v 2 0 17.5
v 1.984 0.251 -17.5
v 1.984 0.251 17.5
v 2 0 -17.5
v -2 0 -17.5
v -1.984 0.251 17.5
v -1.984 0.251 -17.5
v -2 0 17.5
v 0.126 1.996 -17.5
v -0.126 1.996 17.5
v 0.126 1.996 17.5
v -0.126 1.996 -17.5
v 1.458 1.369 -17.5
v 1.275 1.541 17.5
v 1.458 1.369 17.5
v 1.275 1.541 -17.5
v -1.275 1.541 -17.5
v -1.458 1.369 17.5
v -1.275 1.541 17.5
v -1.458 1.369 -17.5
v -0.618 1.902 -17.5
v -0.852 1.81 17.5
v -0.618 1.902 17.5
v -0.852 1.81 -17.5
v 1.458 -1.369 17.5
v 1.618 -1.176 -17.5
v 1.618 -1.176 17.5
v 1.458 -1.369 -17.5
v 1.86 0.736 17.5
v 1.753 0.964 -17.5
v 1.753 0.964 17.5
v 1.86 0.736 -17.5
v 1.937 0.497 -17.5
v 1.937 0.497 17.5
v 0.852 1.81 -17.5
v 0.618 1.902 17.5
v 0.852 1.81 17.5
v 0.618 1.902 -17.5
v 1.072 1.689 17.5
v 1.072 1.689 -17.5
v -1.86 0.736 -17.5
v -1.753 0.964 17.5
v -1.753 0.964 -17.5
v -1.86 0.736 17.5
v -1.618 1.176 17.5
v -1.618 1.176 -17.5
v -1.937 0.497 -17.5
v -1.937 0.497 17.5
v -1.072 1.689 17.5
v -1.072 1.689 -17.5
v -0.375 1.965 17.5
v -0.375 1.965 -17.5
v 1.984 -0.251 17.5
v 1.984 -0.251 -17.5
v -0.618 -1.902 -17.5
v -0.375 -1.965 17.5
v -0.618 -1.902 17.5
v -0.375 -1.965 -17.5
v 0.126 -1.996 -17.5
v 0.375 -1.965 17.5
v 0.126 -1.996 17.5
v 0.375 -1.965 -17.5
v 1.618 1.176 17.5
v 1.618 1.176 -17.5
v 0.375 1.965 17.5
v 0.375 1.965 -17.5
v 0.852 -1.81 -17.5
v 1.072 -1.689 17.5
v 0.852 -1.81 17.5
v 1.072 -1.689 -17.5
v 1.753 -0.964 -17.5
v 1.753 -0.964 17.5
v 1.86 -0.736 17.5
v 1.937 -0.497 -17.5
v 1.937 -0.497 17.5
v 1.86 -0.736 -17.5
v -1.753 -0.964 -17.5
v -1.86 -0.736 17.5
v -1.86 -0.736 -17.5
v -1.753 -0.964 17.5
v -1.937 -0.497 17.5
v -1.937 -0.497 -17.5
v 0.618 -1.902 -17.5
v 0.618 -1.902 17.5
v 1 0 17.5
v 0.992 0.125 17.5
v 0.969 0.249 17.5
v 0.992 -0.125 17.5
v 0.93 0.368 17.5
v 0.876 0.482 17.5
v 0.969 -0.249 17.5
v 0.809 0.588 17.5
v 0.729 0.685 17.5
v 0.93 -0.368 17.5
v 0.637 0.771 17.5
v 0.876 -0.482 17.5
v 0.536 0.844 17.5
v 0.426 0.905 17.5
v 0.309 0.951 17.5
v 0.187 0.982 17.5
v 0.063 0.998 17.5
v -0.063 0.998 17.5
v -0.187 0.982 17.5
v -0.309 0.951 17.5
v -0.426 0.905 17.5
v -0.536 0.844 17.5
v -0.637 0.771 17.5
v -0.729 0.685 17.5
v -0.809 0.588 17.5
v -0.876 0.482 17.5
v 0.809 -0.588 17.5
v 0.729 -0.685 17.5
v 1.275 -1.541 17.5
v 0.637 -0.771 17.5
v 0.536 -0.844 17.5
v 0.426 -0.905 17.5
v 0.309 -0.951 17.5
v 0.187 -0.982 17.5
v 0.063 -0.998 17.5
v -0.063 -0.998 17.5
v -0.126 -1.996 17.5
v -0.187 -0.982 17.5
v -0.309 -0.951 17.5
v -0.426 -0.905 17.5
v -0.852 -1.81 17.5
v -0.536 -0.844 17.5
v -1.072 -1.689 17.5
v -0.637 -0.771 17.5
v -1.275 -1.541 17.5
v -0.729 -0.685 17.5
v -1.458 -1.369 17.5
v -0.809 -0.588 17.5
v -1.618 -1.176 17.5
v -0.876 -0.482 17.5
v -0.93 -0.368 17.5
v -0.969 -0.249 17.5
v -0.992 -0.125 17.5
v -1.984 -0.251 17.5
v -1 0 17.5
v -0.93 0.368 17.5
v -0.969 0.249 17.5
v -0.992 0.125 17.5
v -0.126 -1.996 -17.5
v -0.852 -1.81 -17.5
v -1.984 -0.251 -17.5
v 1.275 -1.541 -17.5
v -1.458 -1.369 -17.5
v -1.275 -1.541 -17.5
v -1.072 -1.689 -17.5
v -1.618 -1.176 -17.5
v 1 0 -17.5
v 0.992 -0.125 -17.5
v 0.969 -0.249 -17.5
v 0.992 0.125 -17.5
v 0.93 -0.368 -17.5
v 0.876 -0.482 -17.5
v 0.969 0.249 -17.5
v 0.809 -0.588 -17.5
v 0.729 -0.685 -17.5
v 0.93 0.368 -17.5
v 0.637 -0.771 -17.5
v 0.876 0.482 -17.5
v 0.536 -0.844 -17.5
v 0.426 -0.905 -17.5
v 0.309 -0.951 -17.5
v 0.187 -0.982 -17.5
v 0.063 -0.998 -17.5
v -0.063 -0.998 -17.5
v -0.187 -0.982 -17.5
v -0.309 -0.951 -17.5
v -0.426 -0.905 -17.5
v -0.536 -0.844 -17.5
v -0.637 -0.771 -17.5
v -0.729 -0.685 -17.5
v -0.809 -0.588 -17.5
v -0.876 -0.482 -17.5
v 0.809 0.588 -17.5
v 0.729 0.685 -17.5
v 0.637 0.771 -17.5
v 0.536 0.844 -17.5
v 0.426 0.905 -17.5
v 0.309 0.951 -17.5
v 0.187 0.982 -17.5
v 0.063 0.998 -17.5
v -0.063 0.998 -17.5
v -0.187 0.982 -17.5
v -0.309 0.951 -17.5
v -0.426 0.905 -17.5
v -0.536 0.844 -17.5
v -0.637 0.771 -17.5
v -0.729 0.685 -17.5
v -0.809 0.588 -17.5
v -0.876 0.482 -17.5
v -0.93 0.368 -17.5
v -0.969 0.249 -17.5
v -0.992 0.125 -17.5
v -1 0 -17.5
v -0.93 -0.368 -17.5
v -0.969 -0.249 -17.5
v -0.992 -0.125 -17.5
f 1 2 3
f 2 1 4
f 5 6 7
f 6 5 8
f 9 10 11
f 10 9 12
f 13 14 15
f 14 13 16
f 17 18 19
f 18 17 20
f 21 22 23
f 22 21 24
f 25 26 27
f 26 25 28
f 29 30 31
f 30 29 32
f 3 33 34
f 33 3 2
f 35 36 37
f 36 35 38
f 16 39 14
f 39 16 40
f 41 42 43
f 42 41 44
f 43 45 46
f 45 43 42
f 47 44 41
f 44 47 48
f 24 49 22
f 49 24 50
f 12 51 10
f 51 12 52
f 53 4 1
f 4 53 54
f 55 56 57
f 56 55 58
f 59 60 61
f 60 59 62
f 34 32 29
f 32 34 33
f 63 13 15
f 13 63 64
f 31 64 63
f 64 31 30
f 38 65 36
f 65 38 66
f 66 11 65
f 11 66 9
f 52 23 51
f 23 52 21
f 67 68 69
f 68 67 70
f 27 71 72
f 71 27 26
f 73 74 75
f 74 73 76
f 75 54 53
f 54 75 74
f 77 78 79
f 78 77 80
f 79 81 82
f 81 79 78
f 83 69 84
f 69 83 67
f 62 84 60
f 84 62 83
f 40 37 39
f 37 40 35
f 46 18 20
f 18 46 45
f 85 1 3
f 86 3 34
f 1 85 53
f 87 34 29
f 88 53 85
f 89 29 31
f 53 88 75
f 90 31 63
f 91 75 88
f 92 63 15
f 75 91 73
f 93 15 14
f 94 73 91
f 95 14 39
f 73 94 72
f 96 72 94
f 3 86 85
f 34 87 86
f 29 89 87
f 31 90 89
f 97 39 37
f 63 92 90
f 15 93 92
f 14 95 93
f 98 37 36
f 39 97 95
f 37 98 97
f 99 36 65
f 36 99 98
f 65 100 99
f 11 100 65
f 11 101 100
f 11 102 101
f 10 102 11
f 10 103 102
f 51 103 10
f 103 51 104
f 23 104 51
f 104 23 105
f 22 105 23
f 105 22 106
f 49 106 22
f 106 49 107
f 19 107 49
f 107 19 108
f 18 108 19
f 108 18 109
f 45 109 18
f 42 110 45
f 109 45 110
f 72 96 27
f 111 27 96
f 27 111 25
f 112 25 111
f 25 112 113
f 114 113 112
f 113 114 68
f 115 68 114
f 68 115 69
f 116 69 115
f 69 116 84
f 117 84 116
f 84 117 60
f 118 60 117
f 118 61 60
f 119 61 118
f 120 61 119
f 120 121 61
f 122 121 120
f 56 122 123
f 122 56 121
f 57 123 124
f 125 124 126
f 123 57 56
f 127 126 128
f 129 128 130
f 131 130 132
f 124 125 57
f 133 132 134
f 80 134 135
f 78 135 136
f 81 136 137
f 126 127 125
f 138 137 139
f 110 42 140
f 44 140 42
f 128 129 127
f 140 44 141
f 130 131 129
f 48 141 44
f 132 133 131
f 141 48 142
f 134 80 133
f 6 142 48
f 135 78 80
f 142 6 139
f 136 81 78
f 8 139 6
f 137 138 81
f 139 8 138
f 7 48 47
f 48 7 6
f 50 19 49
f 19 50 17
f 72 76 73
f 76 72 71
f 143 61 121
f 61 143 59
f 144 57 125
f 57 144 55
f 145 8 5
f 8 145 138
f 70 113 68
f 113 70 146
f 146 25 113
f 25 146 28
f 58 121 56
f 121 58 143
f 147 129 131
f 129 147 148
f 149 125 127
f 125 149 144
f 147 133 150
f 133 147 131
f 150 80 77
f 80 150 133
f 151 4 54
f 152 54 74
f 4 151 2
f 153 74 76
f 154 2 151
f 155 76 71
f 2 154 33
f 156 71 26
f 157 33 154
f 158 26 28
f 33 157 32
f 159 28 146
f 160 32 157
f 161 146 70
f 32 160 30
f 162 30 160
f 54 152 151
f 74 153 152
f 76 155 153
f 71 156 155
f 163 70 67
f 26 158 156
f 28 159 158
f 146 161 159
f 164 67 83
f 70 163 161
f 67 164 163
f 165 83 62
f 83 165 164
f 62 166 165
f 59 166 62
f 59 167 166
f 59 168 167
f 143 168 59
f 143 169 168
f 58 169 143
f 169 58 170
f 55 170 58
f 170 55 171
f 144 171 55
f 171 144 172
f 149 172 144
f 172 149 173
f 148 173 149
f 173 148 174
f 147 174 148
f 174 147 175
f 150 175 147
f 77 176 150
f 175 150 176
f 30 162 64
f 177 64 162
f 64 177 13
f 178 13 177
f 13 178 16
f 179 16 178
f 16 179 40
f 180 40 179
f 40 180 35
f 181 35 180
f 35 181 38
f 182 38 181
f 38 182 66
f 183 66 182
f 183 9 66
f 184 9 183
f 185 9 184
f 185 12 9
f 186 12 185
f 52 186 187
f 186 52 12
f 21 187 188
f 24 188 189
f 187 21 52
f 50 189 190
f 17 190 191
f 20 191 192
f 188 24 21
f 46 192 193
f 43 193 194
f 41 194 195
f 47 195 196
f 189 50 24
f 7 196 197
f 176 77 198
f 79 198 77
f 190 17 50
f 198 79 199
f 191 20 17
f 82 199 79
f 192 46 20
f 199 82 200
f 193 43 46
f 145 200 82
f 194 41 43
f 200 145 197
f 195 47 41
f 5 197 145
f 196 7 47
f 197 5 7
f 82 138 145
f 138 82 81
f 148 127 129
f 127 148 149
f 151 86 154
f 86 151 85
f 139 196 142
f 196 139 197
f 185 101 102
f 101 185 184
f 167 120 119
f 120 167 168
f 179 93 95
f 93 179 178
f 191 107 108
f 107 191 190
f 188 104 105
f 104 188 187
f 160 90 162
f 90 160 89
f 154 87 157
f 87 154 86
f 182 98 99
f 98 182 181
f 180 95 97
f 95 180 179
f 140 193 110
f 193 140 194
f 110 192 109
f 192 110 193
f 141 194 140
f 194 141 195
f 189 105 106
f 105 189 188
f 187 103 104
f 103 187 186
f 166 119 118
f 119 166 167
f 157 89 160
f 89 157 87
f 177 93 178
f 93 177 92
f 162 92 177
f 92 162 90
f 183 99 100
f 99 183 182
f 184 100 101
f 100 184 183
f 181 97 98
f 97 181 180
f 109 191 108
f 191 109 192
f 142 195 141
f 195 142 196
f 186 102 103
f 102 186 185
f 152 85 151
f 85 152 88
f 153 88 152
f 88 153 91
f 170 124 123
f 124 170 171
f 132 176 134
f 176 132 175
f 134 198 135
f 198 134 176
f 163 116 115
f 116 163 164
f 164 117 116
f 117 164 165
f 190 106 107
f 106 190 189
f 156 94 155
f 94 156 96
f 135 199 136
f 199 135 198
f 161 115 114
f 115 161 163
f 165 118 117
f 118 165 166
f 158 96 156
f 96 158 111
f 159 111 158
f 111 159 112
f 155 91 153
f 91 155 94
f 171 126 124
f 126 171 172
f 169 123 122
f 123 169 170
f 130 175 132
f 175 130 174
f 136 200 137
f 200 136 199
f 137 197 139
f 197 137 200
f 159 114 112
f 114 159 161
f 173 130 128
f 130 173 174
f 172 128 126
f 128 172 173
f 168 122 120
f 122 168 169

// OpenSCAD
$fn = 50;


difference() {
	union() {
		translate(v = [0, 0, -17.5000000000]) {
			cylinder(h = 35, r = 2.0000000000);
		}
	}
	union() {
		translate(v = [0, 0, -100.0000000000]) {
			cylinder(h = 200, r = 1.0000000000);
		}
	}
}
